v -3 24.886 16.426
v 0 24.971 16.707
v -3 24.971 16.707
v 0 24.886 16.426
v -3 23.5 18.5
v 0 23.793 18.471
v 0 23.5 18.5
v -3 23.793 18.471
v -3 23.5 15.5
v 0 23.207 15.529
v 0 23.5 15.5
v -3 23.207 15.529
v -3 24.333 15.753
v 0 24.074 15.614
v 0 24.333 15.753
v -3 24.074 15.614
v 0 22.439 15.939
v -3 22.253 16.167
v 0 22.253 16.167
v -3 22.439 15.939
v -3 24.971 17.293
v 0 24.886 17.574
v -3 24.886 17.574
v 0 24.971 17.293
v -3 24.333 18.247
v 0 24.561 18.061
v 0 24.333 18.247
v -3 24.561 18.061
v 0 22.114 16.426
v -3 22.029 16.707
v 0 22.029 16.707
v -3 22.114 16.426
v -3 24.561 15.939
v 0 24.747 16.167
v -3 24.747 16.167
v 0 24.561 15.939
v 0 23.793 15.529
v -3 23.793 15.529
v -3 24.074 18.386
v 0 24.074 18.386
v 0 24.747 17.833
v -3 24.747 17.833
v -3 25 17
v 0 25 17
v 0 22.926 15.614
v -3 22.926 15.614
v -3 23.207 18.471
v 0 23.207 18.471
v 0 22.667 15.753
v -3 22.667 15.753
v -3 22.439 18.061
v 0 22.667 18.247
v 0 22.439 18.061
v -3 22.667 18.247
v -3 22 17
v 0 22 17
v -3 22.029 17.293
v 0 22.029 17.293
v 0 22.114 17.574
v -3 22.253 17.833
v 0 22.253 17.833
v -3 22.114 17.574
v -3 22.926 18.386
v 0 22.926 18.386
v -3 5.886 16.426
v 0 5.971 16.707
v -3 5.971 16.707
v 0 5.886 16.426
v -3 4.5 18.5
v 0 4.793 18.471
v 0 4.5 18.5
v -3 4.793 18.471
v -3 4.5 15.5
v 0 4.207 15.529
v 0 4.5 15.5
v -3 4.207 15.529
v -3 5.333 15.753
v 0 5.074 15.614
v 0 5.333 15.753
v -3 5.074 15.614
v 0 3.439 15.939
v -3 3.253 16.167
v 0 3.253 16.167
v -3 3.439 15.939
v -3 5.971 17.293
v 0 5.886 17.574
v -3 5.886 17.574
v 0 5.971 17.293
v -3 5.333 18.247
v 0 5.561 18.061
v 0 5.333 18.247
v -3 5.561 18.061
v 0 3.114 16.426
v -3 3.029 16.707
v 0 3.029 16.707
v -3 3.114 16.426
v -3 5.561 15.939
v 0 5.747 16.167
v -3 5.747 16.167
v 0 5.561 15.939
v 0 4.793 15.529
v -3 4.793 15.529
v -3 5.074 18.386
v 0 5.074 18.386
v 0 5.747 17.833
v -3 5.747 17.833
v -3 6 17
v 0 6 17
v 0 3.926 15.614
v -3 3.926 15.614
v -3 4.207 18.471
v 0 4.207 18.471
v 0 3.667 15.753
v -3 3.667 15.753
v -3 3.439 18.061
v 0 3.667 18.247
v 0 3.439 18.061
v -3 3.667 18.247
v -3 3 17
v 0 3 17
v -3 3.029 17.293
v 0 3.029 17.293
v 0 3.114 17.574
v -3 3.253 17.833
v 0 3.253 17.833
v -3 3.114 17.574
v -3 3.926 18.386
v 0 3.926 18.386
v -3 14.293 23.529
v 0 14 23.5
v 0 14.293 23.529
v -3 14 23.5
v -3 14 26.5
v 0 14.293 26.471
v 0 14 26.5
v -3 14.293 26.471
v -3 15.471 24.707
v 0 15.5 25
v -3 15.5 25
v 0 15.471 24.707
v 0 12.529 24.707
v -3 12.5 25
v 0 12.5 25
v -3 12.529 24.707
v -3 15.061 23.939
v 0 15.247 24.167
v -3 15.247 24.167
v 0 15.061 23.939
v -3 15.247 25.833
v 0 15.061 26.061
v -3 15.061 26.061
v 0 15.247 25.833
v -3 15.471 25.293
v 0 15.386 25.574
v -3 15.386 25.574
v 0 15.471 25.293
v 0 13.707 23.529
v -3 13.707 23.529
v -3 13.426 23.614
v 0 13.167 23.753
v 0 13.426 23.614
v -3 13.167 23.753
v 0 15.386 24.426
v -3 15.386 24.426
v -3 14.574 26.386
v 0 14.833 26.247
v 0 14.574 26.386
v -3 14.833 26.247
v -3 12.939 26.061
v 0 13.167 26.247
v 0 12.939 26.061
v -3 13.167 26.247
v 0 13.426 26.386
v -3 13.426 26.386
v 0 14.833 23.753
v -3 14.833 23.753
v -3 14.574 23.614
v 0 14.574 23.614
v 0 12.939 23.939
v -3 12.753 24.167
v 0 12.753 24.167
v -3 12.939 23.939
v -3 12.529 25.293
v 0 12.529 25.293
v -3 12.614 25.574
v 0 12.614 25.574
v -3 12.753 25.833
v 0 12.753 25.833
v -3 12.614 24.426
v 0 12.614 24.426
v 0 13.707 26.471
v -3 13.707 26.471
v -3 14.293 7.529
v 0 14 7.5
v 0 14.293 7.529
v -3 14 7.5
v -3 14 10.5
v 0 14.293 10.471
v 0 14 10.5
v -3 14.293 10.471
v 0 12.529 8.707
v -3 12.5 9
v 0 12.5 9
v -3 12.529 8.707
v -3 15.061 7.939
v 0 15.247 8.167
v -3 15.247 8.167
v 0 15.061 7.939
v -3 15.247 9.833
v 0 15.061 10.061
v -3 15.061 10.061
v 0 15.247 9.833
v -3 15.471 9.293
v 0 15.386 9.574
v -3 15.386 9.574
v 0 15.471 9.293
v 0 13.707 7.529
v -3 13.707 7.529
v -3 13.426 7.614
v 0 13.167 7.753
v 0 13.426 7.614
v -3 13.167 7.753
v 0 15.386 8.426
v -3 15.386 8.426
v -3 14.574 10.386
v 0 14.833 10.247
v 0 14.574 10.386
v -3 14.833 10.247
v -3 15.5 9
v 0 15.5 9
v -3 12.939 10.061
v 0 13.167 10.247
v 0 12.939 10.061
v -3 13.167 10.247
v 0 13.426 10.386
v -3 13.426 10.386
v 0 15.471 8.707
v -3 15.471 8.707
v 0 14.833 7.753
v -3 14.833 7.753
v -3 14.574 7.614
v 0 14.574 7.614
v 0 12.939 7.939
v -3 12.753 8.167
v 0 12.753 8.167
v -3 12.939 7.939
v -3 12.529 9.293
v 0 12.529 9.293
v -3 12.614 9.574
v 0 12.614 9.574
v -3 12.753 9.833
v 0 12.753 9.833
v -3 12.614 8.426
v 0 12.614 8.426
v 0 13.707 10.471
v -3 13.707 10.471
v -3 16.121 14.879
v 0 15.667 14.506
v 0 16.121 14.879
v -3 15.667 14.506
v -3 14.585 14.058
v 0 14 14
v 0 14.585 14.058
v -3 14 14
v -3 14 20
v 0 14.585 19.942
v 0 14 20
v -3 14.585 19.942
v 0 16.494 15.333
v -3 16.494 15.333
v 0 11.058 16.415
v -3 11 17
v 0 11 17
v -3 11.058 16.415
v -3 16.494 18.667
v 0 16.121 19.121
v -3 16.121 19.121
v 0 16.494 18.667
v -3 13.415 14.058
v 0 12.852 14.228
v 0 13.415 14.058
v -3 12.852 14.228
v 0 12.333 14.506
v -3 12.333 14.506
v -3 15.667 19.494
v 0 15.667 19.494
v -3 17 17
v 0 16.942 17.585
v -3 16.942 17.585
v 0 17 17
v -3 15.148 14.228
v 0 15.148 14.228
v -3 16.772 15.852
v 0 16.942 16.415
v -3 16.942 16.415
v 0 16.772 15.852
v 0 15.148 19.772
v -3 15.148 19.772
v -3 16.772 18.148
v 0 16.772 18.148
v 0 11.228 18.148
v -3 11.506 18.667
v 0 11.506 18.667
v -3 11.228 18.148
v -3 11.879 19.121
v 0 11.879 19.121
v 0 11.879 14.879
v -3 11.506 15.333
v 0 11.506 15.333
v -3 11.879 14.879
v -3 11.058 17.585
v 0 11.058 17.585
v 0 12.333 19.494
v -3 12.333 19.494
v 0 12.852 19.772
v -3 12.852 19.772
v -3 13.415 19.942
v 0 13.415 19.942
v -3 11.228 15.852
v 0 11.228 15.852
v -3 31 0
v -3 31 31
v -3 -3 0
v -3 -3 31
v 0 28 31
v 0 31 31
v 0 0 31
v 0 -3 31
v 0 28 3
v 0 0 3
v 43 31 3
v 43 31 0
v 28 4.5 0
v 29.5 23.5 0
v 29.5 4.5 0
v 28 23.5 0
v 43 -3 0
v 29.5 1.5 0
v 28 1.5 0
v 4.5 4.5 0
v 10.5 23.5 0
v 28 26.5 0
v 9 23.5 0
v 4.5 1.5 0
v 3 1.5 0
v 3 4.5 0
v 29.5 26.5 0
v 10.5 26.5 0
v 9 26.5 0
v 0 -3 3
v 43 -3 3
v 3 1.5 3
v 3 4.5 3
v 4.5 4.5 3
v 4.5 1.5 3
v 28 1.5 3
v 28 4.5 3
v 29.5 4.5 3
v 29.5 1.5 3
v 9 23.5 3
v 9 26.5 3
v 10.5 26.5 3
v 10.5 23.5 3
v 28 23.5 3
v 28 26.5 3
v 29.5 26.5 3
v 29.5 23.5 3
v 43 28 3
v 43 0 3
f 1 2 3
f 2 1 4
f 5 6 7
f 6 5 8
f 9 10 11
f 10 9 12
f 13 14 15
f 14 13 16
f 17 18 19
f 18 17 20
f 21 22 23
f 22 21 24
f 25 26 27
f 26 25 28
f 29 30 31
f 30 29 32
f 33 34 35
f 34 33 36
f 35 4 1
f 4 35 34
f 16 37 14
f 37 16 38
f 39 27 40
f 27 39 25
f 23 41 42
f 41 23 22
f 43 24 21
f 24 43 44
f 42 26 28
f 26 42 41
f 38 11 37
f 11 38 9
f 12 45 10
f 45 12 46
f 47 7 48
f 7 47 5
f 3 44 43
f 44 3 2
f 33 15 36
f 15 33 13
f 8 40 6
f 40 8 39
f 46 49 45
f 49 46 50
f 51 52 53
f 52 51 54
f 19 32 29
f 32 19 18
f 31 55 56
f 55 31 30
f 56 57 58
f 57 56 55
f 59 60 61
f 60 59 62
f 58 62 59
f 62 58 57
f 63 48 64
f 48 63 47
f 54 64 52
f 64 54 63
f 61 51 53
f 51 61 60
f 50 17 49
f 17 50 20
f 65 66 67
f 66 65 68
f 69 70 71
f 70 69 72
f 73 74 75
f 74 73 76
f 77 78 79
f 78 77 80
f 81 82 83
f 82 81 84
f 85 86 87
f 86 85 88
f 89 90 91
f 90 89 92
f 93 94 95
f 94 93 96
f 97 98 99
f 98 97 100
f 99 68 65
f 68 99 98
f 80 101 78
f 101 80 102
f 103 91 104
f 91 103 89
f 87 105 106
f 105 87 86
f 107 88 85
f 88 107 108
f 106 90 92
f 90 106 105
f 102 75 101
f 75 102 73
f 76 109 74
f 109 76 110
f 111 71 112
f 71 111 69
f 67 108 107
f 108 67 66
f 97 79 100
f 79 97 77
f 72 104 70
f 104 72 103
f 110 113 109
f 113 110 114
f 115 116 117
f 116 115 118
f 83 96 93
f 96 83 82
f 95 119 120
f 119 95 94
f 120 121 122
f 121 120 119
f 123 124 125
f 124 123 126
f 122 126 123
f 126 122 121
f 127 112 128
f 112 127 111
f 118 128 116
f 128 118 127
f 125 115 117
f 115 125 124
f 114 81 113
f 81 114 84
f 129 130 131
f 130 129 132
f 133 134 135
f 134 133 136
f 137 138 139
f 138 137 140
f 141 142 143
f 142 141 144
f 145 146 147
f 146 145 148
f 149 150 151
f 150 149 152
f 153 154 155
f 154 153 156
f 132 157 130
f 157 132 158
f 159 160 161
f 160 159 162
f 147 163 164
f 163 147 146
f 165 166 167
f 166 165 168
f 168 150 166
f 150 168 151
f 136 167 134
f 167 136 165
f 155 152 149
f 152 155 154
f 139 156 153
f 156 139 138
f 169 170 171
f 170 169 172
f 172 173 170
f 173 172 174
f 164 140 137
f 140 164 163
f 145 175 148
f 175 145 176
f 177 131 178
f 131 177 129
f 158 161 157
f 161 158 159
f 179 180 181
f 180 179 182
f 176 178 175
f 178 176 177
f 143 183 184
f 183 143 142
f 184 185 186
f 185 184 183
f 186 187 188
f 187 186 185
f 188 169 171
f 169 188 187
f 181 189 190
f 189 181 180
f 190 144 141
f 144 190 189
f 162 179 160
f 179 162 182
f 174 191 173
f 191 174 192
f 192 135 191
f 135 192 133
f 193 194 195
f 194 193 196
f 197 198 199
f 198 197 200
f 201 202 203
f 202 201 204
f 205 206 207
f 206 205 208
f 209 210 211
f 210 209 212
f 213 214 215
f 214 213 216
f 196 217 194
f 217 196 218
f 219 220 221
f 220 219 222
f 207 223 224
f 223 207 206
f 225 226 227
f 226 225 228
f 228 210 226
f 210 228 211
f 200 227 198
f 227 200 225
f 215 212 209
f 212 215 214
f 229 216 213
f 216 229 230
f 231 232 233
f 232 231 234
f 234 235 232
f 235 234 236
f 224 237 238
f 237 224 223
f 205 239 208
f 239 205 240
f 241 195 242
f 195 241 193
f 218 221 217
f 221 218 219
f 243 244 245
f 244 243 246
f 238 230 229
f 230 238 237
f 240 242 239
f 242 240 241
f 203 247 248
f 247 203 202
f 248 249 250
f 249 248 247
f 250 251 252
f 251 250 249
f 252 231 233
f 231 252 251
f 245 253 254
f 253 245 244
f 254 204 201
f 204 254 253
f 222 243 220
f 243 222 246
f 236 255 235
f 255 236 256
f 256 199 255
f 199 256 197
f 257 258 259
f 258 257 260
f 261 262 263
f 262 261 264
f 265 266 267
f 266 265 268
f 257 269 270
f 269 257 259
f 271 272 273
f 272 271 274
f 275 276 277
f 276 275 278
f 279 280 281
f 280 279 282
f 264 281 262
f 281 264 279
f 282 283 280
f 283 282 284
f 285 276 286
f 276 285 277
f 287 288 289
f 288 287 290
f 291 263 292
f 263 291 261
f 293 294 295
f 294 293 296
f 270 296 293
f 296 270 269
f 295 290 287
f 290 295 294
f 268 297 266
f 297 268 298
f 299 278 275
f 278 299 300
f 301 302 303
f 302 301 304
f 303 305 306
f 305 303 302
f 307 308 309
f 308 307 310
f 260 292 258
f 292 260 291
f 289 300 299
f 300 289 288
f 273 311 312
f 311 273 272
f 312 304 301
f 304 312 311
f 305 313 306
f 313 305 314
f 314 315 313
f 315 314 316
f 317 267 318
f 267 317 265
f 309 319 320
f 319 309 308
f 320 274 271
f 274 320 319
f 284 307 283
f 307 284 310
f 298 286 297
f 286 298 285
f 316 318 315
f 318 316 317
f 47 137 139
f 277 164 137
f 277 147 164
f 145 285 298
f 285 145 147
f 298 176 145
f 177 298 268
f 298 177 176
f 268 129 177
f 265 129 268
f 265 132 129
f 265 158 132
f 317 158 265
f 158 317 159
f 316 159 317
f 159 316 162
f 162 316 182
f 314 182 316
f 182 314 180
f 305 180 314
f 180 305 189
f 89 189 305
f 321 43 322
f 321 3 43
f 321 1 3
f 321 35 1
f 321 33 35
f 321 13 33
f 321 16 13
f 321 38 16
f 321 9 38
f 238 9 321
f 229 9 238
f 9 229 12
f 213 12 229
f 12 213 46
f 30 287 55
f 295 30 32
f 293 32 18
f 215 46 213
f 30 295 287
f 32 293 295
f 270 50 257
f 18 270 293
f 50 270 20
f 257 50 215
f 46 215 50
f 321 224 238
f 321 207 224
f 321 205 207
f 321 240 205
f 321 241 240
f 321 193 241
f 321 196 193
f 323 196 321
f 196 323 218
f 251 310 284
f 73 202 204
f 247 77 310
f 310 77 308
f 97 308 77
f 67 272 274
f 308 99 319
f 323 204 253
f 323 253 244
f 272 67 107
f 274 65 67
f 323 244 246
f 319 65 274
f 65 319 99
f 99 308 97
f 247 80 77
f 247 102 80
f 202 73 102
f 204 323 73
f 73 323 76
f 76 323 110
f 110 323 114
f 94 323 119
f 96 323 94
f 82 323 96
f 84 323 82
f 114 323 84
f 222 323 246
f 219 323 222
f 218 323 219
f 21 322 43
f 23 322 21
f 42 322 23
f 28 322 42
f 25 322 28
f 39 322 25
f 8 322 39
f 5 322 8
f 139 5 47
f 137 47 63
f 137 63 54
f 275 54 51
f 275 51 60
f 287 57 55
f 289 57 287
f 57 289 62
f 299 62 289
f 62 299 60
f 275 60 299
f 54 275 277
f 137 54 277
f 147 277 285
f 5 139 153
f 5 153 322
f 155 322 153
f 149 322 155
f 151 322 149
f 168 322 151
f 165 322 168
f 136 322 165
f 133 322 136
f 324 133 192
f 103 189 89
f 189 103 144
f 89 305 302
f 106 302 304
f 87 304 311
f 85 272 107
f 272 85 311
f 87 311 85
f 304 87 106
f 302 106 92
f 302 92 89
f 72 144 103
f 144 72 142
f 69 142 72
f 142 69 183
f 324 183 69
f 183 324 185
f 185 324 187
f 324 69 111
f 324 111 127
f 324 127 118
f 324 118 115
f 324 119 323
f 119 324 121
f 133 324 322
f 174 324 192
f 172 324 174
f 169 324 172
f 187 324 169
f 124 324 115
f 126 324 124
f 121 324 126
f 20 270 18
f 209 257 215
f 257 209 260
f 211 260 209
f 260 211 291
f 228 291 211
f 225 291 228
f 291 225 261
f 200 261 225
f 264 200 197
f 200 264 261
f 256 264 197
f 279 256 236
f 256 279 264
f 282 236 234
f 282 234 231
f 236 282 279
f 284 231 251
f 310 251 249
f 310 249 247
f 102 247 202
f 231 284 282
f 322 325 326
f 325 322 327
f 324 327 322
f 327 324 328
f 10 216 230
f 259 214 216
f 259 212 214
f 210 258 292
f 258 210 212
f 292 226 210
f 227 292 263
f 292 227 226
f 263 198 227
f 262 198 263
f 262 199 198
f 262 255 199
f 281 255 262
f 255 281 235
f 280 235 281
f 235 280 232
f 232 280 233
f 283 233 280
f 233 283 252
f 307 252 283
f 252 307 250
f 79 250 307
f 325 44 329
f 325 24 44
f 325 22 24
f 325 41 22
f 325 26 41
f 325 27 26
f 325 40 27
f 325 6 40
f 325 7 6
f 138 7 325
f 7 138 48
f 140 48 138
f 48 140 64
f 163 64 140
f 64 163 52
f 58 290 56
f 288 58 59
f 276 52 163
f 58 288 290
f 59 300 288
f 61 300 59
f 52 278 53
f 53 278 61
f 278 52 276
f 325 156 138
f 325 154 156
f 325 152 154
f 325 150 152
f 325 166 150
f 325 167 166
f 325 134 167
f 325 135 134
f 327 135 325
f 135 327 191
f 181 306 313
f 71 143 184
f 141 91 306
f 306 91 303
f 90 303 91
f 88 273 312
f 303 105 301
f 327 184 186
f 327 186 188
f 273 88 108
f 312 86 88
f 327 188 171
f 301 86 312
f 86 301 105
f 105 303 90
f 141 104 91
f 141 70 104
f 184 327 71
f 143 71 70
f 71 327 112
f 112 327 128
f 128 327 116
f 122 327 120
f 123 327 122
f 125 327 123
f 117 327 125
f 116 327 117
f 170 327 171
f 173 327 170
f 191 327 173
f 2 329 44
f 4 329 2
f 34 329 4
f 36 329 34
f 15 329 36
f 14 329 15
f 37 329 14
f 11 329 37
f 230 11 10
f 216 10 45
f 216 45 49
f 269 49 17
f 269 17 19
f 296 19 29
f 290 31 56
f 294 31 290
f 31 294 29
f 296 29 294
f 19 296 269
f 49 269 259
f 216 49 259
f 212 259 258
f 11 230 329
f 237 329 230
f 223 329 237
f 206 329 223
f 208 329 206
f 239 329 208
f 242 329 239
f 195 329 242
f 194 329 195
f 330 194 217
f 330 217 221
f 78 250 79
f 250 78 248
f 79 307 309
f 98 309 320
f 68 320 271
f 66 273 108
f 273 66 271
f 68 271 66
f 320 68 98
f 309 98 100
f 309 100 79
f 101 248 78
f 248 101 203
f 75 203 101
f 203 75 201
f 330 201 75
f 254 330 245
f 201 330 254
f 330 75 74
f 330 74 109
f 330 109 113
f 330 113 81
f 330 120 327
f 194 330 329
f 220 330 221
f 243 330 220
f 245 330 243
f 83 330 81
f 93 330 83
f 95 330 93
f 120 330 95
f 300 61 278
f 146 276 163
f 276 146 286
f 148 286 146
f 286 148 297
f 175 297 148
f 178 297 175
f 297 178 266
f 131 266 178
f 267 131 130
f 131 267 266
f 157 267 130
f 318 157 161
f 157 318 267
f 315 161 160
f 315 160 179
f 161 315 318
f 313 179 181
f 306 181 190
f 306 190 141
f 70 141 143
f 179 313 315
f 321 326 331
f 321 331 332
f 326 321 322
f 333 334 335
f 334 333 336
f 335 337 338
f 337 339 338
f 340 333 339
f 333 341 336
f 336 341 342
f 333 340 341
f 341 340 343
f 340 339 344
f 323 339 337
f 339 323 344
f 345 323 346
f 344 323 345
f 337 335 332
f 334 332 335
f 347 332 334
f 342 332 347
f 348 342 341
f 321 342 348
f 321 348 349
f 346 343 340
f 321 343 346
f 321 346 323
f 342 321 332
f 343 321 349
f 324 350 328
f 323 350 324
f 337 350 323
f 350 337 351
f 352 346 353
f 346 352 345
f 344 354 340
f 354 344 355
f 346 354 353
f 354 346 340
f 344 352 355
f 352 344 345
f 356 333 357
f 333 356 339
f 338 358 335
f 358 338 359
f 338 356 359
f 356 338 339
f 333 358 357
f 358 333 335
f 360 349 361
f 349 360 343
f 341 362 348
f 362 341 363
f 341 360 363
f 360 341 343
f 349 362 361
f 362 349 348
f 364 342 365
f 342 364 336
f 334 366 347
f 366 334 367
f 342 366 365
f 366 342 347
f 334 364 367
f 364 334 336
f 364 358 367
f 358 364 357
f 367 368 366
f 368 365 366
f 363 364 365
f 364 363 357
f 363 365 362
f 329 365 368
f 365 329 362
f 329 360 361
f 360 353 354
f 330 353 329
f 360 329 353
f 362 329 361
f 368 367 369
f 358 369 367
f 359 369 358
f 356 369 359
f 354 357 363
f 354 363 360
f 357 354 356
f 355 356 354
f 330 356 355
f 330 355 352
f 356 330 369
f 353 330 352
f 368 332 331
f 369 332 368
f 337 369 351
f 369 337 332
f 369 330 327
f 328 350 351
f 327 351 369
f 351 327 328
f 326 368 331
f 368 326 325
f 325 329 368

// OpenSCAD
// Motor mount for Make Magazine's "Towel" RC plane
// designed to fit the Great Plains Ammo GPMG5190 motor
// version 1.

pt  =  3.0; // plate thickness
mr  = 28.0; // motor radius
ml  = 40.0; // motor length
mdx = 19.0; // mounting screw separation in x
mdy = 16.0; // mounting screw separation in y
rez = 32;   // resolution for holes

module mounting_screw() {
    translate([-(pt+1),0,0])
    rotate([0,90,0])
    cylinder(h=pt+2, d=3, $fn=rez);    
}

module propeller_shaft() {
    translate([-(pt+1),0,0])
    rotate([0,90,0])
    cylinder(h=pt+2, d=6, $fn=rez);    
}

module motor_indent() {
    translate([-1,0,0])
    rotate([0,90,0])
    cylinder(h=2, d=mr, $fn=rez);
}

module brace() {
    translate([0,0,pt])
    rotate([90,0,0])
    linear_extrude(pt)
    polygon([[    0,  0],
             [    0, mr],
             [pt+ml,  0]]);
}

module tie_wrap() {
    translate([0,0,-1])
    cube([1.5, 3, pt+2]);    
}

union() {
    
    // front face
    difference() {
        translate([-pt, -pt, 0]) cube([pt, mr+2*pt, mr+pt]);
        
        union() { // cut-out mounting holes
            translate([0, (mr+mdx)/2,       pt+mr/2]) mounting_screw();
            translate([0, (mr-mdx)/2,       pt+mr/2]) mounting_screw();
            translate([0,       mr/2, pt+(mr+mdy)/2]) mounting_screw();
            translate([0,       mr/2, pt+(mr-mdy)/2]) mounting_screw();
            translate([0,       mr/2,       pt+mr/2]) propeller_shaft();
         // translate([0,       mr/2,       pt+mr/2]) motor_indent();
        }
    }
    
    // bottom plate
    difference() {
        translate([0, -pt, 0]) cube([pt+ml, mr+2*pt, pt]);

        union() { // cut-out mounting holes
            translate([  pt,      pt/2, 0]) tie_wrap();
            translate([  mr,      pt/2, 0]) tie_wrap();
            translate([3*pt, mr-3*pt/2, 0]) tie_wrap();
            translate([  mr, mr-3*pt/2, 0]) tie_wrap();
        }
    }
    
    // left brace
    brace();

    // right brace
    translate([0, pt+mr, 0]) brace();
}
